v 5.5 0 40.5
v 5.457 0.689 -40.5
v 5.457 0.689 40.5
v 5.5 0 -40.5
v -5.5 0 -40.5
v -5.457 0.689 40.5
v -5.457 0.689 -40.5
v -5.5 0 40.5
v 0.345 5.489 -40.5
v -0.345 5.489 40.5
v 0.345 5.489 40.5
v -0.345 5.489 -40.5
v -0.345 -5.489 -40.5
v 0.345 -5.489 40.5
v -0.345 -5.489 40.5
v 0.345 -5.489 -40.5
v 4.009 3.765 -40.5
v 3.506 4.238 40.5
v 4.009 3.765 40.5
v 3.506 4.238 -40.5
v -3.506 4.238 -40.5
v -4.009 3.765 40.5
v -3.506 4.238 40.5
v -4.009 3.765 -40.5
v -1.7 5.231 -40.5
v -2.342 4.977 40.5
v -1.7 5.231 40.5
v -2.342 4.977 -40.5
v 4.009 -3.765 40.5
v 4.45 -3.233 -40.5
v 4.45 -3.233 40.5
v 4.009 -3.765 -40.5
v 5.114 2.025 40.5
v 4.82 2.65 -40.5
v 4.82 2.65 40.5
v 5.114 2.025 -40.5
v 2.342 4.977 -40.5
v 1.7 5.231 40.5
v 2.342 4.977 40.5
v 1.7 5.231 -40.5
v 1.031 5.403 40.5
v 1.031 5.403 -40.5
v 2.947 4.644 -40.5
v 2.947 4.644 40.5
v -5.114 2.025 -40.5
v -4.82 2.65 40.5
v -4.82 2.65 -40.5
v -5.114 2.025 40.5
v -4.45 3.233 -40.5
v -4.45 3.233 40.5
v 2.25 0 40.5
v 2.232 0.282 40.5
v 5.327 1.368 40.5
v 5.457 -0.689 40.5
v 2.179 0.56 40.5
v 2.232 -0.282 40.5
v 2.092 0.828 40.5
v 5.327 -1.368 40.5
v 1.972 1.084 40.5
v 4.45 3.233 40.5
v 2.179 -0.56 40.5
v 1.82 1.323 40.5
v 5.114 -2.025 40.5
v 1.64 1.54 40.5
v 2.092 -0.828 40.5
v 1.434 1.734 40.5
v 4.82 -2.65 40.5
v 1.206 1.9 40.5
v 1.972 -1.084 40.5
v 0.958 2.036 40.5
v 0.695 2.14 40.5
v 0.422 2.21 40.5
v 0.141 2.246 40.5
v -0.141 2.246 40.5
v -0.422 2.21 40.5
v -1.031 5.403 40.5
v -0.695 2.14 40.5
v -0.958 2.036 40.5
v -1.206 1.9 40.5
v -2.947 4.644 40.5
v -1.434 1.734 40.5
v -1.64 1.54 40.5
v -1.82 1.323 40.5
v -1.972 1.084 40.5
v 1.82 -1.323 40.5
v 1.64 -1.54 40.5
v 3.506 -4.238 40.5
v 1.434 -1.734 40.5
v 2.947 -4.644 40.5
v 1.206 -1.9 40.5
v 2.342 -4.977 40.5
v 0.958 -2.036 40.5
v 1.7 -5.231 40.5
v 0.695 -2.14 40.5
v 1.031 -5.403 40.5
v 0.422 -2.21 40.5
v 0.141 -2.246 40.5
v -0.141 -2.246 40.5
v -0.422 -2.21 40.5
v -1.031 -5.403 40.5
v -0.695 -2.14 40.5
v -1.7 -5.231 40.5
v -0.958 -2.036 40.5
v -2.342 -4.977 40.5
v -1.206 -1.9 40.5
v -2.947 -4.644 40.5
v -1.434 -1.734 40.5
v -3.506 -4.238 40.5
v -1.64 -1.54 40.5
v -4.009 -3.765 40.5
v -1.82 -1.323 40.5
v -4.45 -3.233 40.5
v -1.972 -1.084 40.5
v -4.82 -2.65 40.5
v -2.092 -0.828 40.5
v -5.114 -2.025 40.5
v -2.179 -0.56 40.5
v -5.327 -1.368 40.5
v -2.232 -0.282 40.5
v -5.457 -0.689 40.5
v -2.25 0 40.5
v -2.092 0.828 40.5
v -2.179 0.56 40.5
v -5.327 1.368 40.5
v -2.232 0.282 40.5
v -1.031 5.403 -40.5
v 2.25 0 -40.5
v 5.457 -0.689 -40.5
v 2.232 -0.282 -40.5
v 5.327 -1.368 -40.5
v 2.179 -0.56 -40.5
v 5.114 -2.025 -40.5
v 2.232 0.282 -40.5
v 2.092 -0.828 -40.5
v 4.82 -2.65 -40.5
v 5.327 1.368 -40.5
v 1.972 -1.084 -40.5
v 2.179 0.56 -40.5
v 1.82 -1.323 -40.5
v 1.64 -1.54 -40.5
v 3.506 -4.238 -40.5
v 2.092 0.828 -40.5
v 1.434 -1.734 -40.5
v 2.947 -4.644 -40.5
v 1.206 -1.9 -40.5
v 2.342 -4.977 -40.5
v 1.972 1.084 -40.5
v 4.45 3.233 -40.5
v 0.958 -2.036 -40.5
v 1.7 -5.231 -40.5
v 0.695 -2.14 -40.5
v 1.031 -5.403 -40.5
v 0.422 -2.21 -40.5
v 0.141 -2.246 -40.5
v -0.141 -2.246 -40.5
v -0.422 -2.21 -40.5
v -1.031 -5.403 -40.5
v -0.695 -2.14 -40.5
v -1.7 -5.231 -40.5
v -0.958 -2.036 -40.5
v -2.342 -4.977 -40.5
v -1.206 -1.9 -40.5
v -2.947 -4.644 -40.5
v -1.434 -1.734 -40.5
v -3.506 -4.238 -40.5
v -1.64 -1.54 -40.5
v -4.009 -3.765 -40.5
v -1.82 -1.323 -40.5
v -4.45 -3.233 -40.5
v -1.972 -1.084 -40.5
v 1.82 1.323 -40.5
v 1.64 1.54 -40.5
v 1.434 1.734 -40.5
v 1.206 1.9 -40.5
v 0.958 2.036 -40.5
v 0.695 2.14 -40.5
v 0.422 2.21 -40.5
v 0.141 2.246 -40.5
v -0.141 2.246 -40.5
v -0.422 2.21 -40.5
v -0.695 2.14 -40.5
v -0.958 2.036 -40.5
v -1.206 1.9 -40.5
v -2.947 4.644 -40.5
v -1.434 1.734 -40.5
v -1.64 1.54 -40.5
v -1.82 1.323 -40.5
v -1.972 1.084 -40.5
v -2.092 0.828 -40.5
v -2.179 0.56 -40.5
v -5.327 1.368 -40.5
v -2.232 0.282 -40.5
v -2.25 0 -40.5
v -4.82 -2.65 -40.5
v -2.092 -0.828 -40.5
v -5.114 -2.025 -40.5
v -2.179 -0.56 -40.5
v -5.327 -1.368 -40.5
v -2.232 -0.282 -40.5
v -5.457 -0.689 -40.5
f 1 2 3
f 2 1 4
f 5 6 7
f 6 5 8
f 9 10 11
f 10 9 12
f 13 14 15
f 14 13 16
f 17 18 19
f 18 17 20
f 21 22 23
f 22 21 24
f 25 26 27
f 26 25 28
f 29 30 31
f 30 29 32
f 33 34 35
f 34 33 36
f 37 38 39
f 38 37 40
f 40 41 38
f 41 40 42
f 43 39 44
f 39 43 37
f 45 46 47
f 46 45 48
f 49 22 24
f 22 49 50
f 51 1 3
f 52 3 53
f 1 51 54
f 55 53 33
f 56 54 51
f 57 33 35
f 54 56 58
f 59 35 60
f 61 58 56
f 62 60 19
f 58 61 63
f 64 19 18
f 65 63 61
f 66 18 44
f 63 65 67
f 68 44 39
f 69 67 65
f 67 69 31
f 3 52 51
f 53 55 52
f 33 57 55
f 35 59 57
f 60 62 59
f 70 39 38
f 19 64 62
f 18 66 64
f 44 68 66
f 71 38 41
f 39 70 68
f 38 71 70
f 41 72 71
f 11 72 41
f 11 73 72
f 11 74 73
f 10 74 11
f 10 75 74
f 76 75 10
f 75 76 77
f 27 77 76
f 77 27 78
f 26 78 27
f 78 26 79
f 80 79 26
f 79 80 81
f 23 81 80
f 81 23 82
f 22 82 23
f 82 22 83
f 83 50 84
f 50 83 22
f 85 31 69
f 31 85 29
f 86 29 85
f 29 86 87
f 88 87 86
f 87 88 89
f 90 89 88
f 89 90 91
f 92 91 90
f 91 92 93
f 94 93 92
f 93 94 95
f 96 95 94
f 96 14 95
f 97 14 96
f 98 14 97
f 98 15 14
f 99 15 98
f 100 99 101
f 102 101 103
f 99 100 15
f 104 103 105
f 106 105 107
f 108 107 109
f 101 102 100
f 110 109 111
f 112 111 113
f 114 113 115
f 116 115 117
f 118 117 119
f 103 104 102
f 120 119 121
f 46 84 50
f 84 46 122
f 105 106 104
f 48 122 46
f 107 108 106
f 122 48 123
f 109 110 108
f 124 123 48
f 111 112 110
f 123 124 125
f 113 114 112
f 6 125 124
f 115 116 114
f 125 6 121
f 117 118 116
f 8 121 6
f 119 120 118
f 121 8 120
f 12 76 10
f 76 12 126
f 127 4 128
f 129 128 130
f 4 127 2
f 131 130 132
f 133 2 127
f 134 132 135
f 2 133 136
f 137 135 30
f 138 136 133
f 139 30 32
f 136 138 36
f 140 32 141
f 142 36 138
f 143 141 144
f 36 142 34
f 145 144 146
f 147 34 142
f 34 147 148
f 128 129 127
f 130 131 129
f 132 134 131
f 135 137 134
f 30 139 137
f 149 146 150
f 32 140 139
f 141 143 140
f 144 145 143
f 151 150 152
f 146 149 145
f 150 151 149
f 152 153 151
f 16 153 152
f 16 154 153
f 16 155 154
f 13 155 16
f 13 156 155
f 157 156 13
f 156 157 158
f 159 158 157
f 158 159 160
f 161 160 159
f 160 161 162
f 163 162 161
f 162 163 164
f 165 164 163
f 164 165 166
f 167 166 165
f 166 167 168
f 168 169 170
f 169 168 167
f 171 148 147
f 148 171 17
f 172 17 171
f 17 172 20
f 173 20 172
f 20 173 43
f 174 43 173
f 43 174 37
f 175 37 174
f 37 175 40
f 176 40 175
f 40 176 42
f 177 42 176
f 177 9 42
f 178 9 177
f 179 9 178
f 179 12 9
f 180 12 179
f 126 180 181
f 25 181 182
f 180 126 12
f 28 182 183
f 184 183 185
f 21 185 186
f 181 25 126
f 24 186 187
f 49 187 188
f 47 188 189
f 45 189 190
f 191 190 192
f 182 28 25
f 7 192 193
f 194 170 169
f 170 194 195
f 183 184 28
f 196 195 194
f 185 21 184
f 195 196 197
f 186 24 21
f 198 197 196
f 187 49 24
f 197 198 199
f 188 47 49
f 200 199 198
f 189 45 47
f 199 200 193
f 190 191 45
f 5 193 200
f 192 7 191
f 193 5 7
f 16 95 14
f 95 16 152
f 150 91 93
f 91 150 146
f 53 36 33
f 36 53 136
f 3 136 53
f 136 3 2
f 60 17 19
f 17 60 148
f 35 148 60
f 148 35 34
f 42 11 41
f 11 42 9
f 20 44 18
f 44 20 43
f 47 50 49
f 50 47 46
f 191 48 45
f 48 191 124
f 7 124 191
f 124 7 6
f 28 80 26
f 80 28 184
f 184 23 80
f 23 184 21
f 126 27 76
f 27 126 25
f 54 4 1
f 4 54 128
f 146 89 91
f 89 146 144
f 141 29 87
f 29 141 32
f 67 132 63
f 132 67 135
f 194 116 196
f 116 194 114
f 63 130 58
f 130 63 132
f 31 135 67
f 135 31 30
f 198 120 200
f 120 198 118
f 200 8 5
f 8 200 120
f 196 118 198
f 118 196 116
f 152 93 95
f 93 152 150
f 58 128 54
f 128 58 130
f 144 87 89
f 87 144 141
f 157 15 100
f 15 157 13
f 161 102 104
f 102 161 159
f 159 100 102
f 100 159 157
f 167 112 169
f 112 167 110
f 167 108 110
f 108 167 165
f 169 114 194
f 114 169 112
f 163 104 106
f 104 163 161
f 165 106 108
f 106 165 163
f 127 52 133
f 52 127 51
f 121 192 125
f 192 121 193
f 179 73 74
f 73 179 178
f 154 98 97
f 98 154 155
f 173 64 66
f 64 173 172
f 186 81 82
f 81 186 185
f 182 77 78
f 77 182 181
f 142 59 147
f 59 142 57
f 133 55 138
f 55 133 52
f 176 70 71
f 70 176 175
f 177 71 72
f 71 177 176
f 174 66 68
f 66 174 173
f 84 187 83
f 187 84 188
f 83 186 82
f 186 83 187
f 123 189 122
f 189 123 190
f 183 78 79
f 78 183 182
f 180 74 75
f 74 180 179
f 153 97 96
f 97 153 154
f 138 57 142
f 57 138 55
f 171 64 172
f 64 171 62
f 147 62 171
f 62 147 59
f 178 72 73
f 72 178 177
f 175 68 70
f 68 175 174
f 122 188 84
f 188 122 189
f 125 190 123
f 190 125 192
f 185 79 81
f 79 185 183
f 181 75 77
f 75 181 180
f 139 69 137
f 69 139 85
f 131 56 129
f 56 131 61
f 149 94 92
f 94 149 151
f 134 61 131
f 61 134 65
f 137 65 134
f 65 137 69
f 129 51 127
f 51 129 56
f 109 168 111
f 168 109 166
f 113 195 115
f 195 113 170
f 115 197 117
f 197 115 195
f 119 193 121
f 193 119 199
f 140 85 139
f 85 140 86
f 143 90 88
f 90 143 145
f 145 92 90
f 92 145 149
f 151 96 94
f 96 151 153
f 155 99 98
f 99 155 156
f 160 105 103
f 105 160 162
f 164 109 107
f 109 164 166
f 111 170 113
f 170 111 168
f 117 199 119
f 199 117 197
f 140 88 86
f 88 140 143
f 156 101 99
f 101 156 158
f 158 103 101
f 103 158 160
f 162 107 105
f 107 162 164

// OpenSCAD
$fn = 50;


difference() {
	union() {
		translate(v = [0, 0, -40.5000000000]) {
			cylinder(h = 81, r = 5.5000000000);
		}
	}
	union() {
		translate(v = [0, 0, -100.0000000000]) {
			cylinder(h = 200, r = 2.2500000000);
		}
	}
}
